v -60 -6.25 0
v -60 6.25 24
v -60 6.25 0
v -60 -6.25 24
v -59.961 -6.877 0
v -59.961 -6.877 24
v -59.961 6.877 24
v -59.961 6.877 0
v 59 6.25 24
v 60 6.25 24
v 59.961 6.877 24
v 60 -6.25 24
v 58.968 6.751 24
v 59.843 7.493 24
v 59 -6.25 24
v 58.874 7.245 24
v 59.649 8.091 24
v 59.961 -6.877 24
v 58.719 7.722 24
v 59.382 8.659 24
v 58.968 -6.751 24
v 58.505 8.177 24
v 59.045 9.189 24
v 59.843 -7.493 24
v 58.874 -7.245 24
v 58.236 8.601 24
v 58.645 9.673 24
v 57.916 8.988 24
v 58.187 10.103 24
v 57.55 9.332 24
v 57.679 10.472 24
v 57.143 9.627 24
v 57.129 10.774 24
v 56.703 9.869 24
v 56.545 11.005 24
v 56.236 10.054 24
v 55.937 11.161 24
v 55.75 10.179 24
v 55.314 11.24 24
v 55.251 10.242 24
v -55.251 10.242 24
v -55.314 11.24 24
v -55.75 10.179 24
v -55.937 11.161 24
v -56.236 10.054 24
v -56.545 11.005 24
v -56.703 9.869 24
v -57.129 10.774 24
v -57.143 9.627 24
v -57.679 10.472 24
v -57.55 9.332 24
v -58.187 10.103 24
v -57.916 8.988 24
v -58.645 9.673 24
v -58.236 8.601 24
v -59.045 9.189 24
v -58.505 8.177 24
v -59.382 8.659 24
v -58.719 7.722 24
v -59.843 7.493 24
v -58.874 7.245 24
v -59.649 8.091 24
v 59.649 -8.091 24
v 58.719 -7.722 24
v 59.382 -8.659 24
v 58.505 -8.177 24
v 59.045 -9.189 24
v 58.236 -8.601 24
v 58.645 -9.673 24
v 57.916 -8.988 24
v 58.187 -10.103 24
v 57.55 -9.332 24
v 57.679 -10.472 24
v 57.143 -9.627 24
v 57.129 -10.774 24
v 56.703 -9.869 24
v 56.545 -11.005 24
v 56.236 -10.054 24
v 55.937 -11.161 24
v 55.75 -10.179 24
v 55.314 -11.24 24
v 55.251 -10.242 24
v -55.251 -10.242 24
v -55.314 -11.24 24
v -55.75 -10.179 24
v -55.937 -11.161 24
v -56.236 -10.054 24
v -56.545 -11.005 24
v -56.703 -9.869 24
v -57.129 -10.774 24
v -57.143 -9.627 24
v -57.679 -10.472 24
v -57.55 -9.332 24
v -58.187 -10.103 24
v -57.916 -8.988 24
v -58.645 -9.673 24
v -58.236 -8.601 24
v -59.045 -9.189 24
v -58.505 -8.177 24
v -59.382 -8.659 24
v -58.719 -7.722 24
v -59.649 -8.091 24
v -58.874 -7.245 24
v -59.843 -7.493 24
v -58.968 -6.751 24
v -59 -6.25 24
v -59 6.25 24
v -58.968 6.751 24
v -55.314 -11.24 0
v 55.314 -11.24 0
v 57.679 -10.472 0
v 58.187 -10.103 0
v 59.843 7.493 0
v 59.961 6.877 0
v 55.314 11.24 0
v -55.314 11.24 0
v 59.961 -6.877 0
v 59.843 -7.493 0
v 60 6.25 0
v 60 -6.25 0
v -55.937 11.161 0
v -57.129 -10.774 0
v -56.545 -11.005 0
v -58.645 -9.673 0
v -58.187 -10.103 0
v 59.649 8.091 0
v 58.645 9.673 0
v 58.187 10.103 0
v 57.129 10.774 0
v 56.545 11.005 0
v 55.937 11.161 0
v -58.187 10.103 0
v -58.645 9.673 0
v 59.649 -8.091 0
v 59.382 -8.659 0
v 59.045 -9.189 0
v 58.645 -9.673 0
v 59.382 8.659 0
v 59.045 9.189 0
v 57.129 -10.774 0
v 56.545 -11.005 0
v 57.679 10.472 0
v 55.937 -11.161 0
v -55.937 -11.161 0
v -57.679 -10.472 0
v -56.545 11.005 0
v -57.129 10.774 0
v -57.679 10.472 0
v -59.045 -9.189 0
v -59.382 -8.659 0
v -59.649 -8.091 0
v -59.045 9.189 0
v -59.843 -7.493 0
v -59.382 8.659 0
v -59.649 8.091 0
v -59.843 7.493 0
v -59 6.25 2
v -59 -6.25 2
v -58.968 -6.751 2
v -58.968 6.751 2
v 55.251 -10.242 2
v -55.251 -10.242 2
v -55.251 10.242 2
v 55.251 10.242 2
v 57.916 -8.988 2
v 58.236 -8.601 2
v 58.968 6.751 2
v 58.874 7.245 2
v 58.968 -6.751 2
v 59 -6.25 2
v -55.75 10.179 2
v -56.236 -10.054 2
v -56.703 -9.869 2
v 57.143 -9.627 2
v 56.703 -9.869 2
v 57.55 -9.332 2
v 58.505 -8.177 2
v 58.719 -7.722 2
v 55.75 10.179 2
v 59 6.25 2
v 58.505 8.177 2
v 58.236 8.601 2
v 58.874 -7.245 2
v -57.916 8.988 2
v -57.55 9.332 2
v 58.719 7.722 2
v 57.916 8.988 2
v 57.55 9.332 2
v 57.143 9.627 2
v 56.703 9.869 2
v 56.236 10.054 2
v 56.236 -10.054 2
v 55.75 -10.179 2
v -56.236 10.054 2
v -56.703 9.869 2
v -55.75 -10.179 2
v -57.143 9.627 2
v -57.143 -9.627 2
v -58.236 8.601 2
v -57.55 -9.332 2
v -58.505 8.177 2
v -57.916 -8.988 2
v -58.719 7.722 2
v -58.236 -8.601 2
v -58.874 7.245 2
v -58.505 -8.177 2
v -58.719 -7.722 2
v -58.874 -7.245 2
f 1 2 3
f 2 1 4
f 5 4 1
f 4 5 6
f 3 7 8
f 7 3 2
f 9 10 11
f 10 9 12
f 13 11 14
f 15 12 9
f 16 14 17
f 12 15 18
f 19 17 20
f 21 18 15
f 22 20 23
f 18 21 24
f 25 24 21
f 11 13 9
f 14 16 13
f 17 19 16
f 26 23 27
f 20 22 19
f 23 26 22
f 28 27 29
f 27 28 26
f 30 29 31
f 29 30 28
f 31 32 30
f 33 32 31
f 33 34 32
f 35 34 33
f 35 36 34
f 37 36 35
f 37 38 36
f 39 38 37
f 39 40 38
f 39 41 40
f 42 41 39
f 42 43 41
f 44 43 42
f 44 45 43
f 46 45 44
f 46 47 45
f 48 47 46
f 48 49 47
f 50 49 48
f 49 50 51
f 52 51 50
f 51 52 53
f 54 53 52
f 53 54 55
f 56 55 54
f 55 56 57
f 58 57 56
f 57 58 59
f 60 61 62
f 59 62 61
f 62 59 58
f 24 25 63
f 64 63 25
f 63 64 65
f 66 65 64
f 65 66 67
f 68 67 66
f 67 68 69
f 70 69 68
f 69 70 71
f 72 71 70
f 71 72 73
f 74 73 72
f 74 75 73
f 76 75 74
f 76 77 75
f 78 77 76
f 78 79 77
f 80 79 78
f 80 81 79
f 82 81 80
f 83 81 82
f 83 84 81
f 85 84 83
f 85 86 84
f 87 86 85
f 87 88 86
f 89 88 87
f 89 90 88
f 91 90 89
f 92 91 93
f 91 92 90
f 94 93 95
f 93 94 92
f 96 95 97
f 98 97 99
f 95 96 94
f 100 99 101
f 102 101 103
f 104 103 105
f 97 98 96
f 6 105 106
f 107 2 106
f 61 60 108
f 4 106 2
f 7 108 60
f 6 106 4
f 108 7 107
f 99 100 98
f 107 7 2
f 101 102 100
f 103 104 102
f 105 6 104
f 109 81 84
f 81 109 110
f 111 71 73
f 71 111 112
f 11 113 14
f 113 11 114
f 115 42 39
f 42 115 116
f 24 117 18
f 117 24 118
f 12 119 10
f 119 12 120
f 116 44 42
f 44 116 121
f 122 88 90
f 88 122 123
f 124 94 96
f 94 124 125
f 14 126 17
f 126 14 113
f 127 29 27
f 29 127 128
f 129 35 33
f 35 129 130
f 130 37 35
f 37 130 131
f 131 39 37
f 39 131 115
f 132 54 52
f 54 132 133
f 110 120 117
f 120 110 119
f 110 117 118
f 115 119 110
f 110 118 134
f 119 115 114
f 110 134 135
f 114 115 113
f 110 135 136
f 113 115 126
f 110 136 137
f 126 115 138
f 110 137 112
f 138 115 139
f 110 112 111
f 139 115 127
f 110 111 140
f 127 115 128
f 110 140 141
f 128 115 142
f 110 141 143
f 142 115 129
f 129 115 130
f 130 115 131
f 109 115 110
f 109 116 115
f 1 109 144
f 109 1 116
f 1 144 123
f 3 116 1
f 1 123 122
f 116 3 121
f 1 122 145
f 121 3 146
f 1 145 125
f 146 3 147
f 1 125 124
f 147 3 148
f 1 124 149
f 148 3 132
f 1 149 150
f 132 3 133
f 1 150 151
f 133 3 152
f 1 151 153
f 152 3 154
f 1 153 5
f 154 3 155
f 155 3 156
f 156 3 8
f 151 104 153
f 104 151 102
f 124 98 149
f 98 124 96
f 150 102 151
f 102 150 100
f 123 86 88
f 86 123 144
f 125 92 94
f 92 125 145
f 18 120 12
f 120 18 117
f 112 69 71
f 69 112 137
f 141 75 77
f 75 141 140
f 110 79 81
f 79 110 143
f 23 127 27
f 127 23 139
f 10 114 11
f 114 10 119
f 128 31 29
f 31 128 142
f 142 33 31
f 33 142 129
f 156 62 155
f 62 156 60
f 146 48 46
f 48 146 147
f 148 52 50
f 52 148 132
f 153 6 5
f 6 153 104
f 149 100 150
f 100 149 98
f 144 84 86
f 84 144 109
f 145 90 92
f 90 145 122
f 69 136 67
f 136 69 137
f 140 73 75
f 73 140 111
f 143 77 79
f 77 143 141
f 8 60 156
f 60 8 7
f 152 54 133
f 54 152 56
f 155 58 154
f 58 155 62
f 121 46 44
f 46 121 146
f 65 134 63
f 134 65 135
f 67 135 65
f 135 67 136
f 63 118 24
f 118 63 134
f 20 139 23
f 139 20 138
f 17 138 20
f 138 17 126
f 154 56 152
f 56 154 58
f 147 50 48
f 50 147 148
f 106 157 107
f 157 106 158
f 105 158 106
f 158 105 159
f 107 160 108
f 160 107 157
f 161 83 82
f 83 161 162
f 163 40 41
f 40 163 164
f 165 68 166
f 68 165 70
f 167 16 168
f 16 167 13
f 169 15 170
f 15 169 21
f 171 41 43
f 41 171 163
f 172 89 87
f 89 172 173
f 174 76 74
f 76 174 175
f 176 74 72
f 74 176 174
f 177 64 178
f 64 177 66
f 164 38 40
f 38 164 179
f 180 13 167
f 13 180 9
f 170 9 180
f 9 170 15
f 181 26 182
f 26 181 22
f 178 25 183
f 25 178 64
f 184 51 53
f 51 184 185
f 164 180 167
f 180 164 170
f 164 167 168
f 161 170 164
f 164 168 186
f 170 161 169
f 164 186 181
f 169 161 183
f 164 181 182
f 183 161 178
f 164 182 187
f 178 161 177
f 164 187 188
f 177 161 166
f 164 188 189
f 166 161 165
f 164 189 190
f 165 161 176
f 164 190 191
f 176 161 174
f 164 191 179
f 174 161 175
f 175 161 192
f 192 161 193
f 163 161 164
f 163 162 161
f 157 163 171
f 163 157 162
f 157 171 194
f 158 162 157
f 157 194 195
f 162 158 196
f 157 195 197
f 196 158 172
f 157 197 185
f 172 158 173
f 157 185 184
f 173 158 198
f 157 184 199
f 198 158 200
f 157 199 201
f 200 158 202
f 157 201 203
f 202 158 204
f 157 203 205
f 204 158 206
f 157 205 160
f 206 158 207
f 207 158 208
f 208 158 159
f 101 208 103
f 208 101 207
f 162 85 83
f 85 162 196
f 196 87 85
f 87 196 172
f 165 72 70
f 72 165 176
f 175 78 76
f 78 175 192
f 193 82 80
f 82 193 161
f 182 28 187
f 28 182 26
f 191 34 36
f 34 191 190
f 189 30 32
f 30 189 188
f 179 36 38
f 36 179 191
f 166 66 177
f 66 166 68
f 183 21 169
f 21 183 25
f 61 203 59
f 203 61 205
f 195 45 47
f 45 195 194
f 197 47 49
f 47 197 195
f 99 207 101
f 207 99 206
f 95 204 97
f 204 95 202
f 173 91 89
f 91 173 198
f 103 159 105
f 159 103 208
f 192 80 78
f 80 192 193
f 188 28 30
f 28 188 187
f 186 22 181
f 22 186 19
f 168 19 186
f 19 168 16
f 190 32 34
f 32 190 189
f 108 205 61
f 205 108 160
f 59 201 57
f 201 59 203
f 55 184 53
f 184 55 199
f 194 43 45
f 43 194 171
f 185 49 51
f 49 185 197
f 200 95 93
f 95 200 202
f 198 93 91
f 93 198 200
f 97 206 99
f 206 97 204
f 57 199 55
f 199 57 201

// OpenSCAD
$fn = 50;


difference() {
	union() {
		hull() {
			translate(v = [-55.0000000000, 6.2500000000, 0]) {
				cylinder(h = 24, r = 5);
			}
			translate(v = [55.0000000000, 6.2500000000, 0]) {
				cylinder(h = 24, r = 5);
			}
			translate(v = [-55.0000000000, -6.2500000000, 0]) {
				cylinder(h = 24, r = 5);
			}
			translate(v = [55.0000000000, -6.2500000000, 0]) {
				cylinder(h = 24, r = 5);
			}
		}
	}
	union() {
		translate(v = [0, 0, 2]) {
			hull() {
				translate(v = [-55.0000000000, 6.2500000000, 0]) {
					cylinder(h = 22, r = 4);
				}
				translate(v = [55.0000000000, 6.2500000000, 0]) {
					cylinder(h = 22, r = 4);
				}
				translate(v = [-55.0000000000, -6.2500000000, 0]) {
					cylinder(h = 22, r = 4);
				}
				translate(v = [55.0000000000, -6.2500000000, 0]) {
					cylinder(h = 22, r = 4);
				}
			}
		}
	}
}
